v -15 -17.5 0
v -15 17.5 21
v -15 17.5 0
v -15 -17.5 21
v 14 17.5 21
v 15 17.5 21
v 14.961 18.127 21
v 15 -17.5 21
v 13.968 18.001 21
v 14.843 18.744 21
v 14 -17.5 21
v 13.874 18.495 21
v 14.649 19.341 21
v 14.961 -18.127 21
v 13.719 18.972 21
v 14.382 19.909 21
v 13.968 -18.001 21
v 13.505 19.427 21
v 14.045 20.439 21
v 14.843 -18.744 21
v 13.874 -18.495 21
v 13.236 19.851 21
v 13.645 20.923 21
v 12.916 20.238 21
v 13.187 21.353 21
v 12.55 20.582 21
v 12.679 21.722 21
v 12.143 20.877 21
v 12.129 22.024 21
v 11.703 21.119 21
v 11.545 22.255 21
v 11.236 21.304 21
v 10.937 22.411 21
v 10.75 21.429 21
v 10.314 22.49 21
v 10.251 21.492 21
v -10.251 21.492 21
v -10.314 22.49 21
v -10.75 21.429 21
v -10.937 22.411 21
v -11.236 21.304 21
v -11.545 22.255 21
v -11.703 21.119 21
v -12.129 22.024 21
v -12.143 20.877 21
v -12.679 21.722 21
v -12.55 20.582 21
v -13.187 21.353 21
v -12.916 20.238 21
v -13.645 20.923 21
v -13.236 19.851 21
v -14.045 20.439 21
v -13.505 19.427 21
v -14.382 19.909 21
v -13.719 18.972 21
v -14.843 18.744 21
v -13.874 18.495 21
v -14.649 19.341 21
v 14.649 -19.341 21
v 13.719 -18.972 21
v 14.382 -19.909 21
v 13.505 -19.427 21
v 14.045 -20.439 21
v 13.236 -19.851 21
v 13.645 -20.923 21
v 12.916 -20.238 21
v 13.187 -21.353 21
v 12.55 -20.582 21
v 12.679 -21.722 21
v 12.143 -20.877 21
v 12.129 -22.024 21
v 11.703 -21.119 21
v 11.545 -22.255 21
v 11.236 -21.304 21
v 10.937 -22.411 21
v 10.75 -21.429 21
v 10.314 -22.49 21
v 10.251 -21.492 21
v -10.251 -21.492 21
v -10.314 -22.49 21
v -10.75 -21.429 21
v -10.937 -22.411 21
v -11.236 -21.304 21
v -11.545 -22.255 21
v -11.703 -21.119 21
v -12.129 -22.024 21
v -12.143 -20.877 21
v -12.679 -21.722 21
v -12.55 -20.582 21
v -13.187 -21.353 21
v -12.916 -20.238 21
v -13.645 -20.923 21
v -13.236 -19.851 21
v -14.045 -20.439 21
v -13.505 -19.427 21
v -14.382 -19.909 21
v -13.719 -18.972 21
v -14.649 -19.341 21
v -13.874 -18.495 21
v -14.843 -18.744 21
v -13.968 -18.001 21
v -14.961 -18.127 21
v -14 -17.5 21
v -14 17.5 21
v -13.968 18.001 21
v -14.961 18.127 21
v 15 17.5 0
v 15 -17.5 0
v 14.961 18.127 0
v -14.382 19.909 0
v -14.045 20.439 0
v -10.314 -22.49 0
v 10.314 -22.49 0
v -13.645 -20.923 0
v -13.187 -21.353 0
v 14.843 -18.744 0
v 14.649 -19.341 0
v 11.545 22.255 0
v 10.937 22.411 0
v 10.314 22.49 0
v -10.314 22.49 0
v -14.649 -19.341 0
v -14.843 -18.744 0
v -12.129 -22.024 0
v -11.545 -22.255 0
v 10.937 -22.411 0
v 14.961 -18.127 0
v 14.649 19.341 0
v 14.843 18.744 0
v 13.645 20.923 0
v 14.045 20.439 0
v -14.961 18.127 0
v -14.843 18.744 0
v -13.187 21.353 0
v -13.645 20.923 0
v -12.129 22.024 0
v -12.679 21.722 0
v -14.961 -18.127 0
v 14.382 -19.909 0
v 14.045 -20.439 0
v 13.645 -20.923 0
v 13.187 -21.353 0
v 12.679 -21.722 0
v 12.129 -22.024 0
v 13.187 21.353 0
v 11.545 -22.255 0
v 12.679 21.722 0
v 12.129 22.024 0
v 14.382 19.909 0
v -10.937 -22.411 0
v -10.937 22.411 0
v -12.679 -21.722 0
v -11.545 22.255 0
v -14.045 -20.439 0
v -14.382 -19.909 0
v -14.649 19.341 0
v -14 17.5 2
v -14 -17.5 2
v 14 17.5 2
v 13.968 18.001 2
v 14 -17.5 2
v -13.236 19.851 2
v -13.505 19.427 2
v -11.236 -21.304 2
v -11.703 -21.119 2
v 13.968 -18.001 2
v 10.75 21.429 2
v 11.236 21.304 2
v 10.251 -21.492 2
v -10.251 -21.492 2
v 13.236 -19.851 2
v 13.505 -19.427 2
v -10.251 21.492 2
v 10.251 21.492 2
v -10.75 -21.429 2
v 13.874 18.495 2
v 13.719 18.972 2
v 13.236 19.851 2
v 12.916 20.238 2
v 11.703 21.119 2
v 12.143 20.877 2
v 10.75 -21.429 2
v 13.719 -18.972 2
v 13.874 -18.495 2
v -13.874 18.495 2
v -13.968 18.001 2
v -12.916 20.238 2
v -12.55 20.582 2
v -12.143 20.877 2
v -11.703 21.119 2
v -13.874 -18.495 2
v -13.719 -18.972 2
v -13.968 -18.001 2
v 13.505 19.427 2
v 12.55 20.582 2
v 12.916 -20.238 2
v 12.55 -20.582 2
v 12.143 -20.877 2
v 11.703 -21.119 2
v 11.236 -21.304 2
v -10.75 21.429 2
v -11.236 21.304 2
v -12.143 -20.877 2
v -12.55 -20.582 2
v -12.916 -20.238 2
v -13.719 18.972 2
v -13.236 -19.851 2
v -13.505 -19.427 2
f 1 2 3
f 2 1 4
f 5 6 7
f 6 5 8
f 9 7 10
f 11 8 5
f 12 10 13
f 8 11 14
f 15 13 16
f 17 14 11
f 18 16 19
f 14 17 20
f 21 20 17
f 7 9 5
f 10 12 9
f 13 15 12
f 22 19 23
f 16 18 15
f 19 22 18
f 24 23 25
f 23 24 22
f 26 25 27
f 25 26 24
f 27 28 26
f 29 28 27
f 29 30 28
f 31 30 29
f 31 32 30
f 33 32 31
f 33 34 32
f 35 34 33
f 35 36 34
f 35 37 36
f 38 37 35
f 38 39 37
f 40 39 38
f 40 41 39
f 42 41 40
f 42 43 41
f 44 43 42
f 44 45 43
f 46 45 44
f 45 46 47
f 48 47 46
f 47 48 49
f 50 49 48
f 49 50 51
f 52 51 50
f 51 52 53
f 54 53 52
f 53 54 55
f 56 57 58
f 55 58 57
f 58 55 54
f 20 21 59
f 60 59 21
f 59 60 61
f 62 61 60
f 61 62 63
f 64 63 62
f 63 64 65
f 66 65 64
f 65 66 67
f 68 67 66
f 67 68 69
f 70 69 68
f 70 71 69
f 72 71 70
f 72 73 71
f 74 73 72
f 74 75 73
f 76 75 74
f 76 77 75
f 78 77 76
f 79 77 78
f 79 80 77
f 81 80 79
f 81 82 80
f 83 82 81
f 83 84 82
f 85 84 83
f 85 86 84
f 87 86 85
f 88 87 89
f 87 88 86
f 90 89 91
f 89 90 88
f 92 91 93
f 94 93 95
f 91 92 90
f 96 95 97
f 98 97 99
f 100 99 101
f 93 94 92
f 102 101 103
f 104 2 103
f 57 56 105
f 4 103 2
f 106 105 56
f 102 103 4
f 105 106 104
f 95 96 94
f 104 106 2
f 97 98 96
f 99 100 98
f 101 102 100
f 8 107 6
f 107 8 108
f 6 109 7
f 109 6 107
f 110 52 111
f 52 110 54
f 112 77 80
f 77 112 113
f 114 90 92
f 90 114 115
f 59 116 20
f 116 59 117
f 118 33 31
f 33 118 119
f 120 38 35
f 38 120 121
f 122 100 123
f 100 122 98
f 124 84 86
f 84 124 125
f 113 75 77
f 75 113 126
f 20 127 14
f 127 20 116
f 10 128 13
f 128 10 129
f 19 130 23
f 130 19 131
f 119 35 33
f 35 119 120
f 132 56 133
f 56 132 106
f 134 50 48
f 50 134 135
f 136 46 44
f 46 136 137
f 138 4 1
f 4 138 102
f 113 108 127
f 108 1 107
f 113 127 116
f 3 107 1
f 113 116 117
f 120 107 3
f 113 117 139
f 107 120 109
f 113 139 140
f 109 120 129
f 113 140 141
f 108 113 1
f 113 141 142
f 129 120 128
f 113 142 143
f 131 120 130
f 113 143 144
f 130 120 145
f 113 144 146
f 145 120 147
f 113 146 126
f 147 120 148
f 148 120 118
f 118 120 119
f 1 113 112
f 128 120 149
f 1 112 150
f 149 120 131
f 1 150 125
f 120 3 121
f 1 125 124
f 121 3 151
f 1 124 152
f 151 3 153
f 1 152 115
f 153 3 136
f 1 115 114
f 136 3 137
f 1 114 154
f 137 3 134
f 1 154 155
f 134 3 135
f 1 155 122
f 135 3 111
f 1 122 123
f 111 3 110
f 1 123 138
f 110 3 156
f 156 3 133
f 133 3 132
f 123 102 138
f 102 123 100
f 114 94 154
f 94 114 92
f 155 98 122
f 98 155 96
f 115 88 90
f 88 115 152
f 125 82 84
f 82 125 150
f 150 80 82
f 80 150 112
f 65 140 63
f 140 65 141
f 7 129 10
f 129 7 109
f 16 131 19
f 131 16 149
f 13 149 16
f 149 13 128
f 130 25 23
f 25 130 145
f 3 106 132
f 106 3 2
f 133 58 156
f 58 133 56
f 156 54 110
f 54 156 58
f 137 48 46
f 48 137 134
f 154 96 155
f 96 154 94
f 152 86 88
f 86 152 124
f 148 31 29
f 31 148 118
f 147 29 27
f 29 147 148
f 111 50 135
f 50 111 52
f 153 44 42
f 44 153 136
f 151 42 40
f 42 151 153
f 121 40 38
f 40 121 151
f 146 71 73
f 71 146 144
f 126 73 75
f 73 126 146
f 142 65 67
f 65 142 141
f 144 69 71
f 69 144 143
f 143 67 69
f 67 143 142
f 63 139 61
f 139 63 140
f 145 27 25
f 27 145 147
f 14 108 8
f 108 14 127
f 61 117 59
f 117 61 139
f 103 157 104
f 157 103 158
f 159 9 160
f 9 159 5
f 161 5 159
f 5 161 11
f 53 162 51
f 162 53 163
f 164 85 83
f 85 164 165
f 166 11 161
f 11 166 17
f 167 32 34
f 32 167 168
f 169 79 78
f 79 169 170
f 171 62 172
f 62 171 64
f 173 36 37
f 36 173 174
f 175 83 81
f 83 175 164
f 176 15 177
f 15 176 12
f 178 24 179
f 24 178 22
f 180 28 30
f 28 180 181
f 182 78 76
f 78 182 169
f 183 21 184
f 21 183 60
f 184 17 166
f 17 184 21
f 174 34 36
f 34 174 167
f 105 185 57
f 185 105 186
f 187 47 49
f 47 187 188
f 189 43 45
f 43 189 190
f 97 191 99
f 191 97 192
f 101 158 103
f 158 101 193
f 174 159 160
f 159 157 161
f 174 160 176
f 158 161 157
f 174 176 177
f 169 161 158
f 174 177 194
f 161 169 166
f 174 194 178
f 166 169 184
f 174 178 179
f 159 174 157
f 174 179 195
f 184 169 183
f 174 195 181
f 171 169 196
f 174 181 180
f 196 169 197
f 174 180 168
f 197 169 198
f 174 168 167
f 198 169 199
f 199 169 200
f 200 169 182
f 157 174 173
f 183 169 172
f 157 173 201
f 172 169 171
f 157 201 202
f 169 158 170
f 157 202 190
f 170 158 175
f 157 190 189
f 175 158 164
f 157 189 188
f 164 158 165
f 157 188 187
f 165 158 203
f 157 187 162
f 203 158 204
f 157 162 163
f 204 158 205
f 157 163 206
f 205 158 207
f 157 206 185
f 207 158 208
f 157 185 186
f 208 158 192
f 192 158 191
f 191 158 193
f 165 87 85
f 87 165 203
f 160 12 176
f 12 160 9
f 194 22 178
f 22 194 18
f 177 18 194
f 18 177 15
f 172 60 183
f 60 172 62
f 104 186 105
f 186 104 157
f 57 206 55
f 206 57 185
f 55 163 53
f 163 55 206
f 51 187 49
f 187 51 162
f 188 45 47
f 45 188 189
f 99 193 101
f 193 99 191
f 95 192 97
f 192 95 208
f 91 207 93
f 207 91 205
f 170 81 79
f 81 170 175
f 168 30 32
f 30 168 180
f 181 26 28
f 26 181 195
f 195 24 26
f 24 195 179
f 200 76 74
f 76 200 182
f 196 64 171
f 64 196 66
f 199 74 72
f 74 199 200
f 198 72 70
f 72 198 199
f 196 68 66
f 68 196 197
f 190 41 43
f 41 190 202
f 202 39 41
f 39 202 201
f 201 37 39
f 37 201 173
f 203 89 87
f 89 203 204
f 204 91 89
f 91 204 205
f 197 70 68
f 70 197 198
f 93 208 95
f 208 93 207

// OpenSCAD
$fn = 50;


difference() {
	union() {
		hull() {
			translate(v = [-10.0000000000, 17.5000000000, 0]) {
				cylinder(h = 21, r = 5);
			}
			translate(v = [10.0000000000, 17.5000000000, 0]) {
				cylinder(h = 21, r = 5);
			}
			translate(v = [-10.0000000000, -17.5000000000, 0]) {
				cylinder(h = 21, r = 5);
			}
			translate(v = [10.0000000000, -17.5000000000, 0]) {
				cylinder(h = 21, r = 5);
			}
		}
	}
	union() {
		translate(v = [0, 0, 2]) {
			hull() {
				translate(v = [-10.0000000000, 17.5000000000, 0]) {
					cylinder(h = 19, r = 4);
				}
				translate(v = [10.0000000000, 17.5000000000, 0]) {
					cylinder(h = 19, r = 4);
				}
				translate(v = [-10.0000000000, -17.5000000000, 0]) {
					cylinder(h = 19, r = 4);
				}
				translate(v = [10.0000000000, -17.5000000000, 0]) {
					cylinder(h = 19, r = 4);
				}
			}
		}
	}
}
